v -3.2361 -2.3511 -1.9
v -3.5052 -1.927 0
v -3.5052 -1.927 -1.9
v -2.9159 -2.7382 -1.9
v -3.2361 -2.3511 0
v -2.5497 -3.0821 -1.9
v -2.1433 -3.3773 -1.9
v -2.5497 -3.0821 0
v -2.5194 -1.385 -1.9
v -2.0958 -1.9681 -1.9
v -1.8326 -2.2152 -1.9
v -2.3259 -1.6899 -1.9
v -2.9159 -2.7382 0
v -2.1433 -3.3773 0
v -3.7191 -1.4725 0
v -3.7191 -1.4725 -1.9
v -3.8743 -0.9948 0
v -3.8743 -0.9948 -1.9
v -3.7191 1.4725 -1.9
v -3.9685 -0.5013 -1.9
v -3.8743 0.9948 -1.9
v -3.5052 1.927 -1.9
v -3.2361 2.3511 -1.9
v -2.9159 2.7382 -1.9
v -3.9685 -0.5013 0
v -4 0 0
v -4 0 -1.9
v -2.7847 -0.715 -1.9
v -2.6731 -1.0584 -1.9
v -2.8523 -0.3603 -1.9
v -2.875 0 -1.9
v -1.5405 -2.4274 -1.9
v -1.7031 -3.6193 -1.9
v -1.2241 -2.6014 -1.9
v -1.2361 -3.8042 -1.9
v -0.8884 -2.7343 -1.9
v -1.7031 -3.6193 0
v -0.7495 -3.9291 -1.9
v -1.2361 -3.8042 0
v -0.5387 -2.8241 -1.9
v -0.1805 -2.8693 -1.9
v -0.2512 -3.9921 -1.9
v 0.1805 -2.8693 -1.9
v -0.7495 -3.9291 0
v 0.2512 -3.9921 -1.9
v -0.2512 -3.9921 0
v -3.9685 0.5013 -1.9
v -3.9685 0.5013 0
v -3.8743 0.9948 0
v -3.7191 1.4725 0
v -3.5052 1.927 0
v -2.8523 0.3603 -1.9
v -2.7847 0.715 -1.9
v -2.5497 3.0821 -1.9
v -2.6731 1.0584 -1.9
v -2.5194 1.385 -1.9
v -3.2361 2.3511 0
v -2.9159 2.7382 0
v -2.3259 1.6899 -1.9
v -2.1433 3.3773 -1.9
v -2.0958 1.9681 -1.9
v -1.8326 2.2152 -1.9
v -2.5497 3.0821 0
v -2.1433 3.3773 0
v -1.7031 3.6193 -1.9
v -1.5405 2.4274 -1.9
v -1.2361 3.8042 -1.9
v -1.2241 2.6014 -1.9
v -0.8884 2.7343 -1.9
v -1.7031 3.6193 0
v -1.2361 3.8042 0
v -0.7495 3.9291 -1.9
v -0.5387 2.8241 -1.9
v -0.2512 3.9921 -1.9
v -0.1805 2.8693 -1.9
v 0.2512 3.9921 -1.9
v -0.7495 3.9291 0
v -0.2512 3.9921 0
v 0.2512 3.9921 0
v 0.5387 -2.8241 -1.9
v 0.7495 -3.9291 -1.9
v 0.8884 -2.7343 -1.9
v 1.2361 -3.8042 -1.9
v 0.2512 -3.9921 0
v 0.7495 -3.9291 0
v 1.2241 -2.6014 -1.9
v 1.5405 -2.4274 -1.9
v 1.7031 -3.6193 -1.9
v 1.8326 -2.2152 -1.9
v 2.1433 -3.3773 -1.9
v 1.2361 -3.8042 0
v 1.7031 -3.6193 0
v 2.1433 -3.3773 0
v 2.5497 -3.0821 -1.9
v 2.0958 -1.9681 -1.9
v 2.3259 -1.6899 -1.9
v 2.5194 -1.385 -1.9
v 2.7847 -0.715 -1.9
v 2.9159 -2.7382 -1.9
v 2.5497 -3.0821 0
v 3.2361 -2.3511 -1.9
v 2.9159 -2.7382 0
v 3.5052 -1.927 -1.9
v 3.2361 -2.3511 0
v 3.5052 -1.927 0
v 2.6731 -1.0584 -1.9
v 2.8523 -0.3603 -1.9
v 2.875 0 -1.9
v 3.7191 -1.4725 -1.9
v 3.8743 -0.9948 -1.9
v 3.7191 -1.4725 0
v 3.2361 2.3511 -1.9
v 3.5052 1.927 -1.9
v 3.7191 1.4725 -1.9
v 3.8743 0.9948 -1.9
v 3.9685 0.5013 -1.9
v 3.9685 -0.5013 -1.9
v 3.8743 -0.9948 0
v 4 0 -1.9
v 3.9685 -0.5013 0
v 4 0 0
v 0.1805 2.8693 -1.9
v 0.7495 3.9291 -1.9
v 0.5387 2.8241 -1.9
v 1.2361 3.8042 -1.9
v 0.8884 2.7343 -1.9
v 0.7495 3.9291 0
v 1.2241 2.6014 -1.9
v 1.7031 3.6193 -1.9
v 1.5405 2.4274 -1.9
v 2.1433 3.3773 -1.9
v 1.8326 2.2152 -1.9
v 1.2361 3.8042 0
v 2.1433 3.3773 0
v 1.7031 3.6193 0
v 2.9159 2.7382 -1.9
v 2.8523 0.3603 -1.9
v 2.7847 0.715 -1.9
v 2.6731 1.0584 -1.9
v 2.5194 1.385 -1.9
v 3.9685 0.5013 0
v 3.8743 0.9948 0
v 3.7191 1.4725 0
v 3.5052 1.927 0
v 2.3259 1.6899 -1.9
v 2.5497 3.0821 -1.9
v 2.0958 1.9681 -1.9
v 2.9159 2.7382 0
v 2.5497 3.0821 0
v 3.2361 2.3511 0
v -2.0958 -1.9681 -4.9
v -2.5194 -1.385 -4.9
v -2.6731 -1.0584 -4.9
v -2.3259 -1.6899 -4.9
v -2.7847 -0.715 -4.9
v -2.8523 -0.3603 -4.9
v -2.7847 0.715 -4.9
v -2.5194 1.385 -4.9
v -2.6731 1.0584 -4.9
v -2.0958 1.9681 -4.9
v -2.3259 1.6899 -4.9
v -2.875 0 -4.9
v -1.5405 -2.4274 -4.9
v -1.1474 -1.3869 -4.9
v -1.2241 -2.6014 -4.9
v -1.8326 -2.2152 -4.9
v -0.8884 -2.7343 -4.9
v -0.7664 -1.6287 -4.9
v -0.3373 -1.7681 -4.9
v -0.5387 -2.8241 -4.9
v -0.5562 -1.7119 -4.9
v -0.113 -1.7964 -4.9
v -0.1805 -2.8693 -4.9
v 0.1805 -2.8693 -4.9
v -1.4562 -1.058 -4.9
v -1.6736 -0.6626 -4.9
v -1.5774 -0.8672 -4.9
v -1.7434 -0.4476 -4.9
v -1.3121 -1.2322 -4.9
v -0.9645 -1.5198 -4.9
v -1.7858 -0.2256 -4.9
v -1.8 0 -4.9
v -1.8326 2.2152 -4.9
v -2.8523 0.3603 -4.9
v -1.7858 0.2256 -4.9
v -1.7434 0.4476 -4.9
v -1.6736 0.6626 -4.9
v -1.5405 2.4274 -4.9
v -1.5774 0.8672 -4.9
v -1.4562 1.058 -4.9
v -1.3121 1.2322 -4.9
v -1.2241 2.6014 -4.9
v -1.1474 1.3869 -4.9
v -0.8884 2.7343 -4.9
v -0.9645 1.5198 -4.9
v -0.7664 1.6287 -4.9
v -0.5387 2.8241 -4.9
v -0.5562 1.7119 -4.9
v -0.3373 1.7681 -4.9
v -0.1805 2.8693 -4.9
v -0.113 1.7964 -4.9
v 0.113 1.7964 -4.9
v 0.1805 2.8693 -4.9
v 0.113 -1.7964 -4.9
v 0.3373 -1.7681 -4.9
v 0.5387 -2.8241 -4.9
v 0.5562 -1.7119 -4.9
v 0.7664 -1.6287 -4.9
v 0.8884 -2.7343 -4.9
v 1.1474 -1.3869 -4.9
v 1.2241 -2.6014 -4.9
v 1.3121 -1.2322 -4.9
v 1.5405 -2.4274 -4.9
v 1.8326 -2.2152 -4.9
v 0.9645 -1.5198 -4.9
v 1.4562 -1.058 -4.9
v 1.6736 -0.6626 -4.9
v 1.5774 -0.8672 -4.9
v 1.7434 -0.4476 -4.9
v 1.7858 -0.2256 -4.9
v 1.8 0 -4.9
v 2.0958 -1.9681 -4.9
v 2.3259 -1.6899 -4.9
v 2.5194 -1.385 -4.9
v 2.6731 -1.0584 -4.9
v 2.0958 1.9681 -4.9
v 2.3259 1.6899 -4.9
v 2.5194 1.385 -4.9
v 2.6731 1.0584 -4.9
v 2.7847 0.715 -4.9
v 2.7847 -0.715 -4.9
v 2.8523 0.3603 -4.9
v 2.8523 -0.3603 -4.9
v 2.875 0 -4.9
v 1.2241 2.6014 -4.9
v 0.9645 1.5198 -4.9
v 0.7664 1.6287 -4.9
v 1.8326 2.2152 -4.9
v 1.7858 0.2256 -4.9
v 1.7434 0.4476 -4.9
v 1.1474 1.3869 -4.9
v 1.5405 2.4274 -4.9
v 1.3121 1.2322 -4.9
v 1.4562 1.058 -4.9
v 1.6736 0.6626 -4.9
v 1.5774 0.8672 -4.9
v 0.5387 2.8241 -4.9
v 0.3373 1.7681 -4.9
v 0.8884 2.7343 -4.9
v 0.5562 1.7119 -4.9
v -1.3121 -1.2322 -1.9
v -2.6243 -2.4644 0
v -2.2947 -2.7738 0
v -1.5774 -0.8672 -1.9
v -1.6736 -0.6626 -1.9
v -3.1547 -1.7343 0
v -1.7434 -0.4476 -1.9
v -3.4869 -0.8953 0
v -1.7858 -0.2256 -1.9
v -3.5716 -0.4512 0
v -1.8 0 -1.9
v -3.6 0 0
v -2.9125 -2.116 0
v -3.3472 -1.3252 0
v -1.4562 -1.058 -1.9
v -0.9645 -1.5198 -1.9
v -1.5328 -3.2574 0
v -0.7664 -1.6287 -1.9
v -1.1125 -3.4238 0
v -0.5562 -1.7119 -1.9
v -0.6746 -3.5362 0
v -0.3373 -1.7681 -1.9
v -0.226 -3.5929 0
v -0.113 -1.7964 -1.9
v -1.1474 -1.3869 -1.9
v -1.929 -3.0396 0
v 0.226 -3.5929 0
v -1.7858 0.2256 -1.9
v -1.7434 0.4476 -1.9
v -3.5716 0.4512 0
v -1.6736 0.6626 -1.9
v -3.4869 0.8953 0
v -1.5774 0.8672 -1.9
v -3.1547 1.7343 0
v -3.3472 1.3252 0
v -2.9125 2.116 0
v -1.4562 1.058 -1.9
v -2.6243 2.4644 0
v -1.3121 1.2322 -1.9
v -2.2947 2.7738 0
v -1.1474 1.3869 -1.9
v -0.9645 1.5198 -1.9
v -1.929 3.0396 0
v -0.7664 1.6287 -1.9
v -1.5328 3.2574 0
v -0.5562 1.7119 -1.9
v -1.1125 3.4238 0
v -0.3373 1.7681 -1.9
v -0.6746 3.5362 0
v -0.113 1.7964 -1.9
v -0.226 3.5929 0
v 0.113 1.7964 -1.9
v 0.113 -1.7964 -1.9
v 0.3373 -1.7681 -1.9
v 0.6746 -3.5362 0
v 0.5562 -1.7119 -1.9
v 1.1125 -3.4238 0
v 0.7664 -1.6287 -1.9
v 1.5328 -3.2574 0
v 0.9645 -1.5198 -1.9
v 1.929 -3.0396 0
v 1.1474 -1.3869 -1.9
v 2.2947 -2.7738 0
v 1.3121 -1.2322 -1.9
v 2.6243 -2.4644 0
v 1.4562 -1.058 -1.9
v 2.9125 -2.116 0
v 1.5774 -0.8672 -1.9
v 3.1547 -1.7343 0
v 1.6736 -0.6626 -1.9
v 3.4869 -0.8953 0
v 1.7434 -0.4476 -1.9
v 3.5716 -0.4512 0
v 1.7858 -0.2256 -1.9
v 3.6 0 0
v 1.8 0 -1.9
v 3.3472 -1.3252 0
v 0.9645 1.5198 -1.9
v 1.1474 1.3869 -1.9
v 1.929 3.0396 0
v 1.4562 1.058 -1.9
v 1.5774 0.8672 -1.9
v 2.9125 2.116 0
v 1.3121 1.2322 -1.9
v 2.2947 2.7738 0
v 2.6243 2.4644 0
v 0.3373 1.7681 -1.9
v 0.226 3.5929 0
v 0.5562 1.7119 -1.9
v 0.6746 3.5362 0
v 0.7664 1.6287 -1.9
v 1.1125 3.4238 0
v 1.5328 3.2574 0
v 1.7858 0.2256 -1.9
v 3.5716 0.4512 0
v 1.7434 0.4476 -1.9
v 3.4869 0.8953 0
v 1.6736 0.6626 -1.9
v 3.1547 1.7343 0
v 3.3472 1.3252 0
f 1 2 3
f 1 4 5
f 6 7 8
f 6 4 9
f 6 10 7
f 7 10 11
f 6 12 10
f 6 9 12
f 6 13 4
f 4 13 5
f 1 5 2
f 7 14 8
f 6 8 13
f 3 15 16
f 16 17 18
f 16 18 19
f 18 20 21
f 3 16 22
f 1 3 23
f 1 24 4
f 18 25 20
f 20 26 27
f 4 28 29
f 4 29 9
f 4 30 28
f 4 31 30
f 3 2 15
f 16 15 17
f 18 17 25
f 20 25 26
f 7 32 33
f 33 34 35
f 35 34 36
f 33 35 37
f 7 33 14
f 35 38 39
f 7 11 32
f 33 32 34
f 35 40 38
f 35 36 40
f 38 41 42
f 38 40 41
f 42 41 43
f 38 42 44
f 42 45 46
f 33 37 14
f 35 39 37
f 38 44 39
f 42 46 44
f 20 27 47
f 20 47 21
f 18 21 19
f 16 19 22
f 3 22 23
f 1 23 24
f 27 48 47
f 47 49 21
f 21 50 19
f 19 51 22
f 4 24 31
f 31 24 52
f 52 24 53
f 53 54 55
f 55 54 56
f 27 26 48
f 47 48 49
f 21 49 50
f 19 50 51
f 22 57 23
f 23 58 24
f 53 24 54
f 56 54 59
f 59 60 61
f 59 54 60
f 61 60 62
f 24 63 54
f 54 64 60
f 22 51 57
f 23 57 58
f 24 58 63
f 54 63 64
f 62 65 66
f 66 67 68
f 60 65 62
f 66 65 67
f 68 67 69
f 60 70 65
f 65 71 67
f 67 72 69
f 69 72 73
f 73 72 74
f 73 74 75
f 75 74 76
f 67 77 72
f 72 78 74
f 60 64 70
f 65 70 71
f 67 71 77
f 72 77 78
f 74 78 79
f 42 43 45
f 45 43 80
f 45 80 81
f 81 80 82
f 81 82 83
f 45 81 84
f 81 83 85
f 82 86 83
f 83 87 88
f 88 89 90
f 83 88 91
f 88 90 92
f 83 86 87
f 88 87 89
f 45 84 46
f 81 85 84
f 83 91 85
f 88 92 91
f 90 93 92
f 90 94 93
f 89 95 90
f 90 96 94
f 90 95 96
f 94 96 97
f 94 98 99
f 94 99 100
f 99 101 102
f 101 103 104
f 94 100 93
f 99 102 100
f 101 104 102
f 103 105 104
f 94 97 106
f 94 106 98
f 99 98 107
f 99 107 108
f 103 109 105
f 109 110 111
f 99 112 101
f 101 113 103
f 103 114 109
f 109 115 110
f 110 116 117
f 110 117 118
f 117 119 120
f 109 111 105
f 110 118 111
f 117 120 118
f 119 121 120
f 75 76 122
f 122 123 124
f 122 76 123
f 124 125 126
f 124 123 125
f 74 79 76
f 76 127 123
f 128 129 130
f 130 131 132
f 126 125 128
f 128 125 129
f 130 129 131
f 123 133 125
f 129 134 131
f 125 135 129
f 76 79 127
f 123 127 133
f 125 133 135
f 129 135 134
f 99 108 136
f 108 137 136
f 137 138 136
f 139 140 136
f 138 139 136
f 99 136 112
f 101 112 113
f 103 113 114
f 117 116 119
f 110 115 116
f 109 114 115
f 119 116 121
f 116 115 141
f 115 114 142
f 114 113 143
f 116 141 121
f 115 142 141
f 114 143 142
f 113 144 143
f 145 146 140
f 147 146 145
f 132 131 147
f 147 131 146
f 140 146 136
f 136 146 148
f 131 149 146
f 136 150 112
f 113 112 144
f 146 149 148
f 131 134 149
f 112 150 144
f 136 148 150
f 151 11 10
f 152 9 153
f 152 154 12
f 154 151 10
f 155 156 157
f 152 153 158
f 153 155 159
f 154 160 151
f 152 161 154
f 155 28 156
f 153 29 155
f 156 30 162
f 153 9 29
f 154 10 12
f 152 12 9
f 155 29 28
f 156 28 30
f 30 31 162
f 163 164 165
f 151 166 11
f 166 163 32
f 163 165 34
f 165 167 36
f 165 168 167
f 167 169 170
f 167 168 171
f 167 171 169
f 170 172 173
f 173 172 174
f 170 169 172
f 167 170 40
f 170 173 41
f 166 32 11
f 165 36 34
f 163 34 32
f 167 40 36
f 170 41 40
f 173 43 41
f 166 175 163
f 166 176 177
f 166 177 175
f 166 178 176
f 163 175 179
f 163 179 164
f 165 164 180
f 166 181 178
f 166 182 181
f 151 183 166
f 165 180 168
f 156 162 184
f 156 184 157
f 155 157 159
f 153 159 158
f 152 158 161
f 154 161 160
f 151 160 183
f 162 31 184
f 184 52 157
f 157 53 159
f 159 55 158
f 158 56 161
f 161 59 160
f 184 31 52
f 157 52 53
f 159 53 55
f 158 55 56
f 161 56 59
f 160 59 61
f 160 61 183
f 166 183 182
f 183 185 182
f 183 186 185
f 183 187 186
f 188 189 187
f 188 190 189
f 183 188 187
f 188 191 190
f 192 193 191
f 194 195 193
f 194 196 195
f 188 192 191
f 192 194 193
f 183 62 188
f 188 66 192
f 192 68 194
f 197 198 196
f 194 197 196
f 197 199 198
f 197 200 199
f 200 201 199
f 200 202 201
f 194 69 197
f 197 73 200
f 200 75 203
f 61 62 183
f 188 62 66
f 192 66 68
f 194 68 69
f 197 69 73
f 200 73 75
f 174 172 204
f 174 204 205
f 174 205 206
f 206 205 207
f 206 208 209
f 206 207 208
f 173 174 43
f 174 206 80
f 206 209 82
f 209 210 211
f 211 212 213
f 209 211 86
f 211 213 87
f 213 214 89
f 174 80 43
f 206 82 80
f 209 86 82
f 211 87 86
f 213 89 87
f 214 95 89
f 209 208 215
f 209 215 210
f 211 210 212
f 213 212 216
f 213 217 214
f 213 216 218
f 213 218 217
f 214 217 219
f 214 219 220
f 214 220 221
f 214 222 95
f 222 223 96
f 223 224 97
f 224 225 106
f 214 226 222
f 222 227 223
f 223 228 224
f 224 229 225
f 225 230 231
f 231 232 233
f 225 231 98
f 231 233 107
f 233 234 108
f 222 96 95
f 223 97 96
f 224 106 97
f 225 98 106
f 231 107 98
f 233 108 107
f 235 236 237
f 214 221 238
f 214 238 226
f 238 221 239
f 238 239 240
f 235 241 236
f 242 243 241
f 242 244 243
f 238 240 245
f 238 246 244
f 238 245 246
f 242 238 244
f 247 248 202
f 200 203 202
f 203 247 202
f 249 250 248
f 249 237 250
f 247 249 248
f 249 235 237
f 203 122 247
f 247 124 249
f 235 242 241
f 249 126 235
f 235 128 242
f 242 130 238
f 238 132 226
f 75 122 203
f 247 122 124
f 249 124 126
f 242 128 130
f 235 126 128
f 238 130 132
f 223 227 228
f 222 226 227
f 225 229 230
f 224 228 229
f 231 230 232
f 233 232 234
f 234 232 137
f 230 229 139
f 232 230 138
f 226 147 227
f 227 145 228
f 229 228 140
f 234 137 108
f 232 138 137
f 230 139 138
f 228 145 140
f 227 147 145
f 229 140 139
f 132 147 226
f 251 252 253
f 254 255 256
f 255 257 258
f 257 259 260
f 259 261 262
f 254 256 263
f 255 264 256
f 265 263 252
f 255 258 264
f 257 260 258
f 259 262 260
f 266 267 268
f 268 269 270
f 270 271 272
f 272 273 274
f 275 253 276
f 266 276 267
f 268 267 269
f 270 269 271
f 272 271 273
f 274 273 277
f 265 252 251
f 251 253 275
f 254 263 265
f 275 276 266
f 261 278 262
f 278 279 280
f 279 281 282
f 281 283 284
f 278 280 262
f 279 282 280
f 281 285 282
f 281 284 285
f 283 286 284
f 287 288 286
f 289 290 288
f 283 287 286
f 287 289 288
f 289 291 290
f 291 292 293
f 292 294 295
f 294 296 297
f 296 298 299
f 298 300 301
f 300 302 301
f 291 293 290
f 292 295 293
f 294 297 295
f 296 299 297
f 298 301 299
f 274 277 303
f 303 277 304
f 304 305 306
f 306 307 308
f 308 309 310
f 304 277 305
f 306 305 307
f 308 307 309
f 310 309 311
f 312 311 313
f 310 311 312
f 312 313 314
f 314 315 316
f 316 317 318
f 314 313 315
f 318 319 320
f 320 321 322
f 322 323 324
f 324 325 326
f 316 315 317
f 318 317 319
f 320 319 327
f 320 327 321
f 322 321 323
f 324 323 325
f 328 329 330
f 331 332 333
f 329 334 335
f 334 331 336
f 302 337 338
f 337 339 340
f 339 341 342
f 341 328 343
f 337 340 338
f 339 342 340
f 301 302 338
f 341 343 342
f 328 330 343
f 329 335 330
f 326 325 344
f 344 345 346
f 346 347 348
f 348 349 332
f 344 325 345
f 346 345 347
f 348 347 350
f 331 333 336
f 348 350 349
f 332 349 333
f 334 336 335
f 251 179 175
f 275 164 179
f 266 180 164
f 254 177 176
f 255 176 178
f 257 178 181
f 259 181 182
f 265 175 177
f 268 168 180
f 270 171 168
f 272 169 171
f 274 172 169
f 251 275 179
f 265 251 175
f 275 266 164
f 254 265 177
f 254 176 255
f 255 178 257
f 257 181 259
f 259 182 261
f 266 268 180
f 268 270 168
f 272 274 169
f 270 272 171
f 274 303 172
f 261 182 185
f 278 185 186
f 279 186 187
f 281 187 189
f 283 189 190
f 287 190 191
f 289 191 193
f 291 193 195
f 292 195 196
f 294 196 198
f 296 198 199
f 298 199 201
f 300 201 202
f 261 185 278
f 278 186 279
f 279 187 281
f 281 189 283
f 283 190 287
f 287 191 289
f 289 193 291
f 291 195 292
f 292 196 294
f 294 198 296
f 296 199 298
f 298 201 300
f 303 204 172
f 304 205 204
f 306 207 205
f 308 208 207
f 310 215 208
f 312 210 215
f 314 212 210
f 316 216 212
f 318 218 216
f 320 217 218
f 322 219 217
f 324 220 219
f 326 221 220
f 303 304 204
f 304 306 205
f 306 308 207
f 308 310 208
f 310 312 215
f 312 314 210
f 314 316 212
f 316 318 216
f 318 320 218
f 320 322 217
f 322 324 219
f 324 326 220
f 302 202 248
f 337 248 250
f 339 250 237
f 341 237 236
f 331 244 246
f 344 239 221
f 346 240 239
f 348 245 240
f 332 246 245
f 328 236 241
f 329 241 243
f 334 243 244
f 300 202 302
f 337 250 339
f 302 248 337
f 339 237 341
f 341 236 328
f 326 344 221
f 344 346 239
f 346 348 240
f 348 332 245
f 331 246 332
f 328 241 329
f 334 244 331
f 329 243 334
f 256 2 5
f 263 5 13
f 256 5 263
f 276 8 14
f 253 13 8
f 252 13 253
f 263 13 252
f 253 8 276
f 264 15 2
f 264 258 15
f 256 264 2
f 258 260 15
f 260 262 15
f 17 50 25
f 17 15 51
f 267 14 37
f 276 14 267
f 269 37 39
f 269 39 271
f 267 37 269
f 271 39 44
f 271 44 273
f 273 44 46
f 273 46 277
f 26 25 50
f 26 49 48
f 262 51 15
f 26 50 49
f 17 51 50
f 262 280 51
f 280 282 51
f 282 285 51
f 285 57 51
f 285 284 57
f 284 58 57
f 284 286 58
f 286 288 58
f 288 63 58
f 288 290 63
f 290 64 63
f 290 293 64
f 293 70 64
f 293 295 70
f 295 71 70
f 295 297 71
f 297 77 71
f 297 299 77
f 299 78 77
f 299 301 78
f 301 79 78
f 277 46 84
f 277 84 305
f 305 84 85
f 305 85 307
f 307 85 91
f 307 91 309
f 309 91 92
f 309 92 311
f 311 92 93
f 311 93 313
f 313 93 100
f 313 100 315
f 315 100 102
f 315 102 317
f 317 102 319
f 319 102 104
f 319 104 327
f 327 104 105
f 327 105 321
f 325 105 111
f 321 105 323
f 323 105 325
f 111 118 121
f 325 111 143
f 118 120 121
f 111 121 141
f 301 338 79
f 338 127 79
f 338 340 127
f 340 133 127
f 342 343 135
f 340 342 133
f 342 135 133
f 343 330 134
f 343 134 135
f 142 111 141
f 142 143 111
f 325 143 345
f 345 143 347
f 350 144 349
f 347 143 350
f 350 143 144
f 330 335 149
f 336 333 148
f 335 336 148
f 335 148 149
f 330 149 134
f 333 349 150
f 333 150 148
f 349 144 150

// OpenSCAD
$fn = 50;

difference() {
	union() {
		translate(v = [0, 0, -1.9000000000000004]) {
			cylinder(h = 4.9, r = 4.0);
		}
		#translate(v = [0, 0, -4.9]) {
			cylinder(h = 4.9, r = 2.875);
		}
	}
	union() {
		translate(v = [0, 0, 0]) {
			rotate(a = [0, 0, 0]) {
				difference() {
					union() {
						translate(v = [0, 0, -4.9]) {
							cylinder(h = 4.9, r = 1.5);
						}
						translate(v = [0, 0, -1.9]) {
							cylinder(h = 1.9, r1 = 1.8, r2 = 3.6);
						}
						translate(v = [0, 0, -4.9]) {
							cylinder(h = 4.9, r = 1.8);
						}
						translate(v = [0, 0, -4.9]) {
							cylinder(h = 4.9, r = 1.5);
						}
					}
					union();
				}
			}
		}
		#cylinder(h = 3, r = 5.0);
	}
}
